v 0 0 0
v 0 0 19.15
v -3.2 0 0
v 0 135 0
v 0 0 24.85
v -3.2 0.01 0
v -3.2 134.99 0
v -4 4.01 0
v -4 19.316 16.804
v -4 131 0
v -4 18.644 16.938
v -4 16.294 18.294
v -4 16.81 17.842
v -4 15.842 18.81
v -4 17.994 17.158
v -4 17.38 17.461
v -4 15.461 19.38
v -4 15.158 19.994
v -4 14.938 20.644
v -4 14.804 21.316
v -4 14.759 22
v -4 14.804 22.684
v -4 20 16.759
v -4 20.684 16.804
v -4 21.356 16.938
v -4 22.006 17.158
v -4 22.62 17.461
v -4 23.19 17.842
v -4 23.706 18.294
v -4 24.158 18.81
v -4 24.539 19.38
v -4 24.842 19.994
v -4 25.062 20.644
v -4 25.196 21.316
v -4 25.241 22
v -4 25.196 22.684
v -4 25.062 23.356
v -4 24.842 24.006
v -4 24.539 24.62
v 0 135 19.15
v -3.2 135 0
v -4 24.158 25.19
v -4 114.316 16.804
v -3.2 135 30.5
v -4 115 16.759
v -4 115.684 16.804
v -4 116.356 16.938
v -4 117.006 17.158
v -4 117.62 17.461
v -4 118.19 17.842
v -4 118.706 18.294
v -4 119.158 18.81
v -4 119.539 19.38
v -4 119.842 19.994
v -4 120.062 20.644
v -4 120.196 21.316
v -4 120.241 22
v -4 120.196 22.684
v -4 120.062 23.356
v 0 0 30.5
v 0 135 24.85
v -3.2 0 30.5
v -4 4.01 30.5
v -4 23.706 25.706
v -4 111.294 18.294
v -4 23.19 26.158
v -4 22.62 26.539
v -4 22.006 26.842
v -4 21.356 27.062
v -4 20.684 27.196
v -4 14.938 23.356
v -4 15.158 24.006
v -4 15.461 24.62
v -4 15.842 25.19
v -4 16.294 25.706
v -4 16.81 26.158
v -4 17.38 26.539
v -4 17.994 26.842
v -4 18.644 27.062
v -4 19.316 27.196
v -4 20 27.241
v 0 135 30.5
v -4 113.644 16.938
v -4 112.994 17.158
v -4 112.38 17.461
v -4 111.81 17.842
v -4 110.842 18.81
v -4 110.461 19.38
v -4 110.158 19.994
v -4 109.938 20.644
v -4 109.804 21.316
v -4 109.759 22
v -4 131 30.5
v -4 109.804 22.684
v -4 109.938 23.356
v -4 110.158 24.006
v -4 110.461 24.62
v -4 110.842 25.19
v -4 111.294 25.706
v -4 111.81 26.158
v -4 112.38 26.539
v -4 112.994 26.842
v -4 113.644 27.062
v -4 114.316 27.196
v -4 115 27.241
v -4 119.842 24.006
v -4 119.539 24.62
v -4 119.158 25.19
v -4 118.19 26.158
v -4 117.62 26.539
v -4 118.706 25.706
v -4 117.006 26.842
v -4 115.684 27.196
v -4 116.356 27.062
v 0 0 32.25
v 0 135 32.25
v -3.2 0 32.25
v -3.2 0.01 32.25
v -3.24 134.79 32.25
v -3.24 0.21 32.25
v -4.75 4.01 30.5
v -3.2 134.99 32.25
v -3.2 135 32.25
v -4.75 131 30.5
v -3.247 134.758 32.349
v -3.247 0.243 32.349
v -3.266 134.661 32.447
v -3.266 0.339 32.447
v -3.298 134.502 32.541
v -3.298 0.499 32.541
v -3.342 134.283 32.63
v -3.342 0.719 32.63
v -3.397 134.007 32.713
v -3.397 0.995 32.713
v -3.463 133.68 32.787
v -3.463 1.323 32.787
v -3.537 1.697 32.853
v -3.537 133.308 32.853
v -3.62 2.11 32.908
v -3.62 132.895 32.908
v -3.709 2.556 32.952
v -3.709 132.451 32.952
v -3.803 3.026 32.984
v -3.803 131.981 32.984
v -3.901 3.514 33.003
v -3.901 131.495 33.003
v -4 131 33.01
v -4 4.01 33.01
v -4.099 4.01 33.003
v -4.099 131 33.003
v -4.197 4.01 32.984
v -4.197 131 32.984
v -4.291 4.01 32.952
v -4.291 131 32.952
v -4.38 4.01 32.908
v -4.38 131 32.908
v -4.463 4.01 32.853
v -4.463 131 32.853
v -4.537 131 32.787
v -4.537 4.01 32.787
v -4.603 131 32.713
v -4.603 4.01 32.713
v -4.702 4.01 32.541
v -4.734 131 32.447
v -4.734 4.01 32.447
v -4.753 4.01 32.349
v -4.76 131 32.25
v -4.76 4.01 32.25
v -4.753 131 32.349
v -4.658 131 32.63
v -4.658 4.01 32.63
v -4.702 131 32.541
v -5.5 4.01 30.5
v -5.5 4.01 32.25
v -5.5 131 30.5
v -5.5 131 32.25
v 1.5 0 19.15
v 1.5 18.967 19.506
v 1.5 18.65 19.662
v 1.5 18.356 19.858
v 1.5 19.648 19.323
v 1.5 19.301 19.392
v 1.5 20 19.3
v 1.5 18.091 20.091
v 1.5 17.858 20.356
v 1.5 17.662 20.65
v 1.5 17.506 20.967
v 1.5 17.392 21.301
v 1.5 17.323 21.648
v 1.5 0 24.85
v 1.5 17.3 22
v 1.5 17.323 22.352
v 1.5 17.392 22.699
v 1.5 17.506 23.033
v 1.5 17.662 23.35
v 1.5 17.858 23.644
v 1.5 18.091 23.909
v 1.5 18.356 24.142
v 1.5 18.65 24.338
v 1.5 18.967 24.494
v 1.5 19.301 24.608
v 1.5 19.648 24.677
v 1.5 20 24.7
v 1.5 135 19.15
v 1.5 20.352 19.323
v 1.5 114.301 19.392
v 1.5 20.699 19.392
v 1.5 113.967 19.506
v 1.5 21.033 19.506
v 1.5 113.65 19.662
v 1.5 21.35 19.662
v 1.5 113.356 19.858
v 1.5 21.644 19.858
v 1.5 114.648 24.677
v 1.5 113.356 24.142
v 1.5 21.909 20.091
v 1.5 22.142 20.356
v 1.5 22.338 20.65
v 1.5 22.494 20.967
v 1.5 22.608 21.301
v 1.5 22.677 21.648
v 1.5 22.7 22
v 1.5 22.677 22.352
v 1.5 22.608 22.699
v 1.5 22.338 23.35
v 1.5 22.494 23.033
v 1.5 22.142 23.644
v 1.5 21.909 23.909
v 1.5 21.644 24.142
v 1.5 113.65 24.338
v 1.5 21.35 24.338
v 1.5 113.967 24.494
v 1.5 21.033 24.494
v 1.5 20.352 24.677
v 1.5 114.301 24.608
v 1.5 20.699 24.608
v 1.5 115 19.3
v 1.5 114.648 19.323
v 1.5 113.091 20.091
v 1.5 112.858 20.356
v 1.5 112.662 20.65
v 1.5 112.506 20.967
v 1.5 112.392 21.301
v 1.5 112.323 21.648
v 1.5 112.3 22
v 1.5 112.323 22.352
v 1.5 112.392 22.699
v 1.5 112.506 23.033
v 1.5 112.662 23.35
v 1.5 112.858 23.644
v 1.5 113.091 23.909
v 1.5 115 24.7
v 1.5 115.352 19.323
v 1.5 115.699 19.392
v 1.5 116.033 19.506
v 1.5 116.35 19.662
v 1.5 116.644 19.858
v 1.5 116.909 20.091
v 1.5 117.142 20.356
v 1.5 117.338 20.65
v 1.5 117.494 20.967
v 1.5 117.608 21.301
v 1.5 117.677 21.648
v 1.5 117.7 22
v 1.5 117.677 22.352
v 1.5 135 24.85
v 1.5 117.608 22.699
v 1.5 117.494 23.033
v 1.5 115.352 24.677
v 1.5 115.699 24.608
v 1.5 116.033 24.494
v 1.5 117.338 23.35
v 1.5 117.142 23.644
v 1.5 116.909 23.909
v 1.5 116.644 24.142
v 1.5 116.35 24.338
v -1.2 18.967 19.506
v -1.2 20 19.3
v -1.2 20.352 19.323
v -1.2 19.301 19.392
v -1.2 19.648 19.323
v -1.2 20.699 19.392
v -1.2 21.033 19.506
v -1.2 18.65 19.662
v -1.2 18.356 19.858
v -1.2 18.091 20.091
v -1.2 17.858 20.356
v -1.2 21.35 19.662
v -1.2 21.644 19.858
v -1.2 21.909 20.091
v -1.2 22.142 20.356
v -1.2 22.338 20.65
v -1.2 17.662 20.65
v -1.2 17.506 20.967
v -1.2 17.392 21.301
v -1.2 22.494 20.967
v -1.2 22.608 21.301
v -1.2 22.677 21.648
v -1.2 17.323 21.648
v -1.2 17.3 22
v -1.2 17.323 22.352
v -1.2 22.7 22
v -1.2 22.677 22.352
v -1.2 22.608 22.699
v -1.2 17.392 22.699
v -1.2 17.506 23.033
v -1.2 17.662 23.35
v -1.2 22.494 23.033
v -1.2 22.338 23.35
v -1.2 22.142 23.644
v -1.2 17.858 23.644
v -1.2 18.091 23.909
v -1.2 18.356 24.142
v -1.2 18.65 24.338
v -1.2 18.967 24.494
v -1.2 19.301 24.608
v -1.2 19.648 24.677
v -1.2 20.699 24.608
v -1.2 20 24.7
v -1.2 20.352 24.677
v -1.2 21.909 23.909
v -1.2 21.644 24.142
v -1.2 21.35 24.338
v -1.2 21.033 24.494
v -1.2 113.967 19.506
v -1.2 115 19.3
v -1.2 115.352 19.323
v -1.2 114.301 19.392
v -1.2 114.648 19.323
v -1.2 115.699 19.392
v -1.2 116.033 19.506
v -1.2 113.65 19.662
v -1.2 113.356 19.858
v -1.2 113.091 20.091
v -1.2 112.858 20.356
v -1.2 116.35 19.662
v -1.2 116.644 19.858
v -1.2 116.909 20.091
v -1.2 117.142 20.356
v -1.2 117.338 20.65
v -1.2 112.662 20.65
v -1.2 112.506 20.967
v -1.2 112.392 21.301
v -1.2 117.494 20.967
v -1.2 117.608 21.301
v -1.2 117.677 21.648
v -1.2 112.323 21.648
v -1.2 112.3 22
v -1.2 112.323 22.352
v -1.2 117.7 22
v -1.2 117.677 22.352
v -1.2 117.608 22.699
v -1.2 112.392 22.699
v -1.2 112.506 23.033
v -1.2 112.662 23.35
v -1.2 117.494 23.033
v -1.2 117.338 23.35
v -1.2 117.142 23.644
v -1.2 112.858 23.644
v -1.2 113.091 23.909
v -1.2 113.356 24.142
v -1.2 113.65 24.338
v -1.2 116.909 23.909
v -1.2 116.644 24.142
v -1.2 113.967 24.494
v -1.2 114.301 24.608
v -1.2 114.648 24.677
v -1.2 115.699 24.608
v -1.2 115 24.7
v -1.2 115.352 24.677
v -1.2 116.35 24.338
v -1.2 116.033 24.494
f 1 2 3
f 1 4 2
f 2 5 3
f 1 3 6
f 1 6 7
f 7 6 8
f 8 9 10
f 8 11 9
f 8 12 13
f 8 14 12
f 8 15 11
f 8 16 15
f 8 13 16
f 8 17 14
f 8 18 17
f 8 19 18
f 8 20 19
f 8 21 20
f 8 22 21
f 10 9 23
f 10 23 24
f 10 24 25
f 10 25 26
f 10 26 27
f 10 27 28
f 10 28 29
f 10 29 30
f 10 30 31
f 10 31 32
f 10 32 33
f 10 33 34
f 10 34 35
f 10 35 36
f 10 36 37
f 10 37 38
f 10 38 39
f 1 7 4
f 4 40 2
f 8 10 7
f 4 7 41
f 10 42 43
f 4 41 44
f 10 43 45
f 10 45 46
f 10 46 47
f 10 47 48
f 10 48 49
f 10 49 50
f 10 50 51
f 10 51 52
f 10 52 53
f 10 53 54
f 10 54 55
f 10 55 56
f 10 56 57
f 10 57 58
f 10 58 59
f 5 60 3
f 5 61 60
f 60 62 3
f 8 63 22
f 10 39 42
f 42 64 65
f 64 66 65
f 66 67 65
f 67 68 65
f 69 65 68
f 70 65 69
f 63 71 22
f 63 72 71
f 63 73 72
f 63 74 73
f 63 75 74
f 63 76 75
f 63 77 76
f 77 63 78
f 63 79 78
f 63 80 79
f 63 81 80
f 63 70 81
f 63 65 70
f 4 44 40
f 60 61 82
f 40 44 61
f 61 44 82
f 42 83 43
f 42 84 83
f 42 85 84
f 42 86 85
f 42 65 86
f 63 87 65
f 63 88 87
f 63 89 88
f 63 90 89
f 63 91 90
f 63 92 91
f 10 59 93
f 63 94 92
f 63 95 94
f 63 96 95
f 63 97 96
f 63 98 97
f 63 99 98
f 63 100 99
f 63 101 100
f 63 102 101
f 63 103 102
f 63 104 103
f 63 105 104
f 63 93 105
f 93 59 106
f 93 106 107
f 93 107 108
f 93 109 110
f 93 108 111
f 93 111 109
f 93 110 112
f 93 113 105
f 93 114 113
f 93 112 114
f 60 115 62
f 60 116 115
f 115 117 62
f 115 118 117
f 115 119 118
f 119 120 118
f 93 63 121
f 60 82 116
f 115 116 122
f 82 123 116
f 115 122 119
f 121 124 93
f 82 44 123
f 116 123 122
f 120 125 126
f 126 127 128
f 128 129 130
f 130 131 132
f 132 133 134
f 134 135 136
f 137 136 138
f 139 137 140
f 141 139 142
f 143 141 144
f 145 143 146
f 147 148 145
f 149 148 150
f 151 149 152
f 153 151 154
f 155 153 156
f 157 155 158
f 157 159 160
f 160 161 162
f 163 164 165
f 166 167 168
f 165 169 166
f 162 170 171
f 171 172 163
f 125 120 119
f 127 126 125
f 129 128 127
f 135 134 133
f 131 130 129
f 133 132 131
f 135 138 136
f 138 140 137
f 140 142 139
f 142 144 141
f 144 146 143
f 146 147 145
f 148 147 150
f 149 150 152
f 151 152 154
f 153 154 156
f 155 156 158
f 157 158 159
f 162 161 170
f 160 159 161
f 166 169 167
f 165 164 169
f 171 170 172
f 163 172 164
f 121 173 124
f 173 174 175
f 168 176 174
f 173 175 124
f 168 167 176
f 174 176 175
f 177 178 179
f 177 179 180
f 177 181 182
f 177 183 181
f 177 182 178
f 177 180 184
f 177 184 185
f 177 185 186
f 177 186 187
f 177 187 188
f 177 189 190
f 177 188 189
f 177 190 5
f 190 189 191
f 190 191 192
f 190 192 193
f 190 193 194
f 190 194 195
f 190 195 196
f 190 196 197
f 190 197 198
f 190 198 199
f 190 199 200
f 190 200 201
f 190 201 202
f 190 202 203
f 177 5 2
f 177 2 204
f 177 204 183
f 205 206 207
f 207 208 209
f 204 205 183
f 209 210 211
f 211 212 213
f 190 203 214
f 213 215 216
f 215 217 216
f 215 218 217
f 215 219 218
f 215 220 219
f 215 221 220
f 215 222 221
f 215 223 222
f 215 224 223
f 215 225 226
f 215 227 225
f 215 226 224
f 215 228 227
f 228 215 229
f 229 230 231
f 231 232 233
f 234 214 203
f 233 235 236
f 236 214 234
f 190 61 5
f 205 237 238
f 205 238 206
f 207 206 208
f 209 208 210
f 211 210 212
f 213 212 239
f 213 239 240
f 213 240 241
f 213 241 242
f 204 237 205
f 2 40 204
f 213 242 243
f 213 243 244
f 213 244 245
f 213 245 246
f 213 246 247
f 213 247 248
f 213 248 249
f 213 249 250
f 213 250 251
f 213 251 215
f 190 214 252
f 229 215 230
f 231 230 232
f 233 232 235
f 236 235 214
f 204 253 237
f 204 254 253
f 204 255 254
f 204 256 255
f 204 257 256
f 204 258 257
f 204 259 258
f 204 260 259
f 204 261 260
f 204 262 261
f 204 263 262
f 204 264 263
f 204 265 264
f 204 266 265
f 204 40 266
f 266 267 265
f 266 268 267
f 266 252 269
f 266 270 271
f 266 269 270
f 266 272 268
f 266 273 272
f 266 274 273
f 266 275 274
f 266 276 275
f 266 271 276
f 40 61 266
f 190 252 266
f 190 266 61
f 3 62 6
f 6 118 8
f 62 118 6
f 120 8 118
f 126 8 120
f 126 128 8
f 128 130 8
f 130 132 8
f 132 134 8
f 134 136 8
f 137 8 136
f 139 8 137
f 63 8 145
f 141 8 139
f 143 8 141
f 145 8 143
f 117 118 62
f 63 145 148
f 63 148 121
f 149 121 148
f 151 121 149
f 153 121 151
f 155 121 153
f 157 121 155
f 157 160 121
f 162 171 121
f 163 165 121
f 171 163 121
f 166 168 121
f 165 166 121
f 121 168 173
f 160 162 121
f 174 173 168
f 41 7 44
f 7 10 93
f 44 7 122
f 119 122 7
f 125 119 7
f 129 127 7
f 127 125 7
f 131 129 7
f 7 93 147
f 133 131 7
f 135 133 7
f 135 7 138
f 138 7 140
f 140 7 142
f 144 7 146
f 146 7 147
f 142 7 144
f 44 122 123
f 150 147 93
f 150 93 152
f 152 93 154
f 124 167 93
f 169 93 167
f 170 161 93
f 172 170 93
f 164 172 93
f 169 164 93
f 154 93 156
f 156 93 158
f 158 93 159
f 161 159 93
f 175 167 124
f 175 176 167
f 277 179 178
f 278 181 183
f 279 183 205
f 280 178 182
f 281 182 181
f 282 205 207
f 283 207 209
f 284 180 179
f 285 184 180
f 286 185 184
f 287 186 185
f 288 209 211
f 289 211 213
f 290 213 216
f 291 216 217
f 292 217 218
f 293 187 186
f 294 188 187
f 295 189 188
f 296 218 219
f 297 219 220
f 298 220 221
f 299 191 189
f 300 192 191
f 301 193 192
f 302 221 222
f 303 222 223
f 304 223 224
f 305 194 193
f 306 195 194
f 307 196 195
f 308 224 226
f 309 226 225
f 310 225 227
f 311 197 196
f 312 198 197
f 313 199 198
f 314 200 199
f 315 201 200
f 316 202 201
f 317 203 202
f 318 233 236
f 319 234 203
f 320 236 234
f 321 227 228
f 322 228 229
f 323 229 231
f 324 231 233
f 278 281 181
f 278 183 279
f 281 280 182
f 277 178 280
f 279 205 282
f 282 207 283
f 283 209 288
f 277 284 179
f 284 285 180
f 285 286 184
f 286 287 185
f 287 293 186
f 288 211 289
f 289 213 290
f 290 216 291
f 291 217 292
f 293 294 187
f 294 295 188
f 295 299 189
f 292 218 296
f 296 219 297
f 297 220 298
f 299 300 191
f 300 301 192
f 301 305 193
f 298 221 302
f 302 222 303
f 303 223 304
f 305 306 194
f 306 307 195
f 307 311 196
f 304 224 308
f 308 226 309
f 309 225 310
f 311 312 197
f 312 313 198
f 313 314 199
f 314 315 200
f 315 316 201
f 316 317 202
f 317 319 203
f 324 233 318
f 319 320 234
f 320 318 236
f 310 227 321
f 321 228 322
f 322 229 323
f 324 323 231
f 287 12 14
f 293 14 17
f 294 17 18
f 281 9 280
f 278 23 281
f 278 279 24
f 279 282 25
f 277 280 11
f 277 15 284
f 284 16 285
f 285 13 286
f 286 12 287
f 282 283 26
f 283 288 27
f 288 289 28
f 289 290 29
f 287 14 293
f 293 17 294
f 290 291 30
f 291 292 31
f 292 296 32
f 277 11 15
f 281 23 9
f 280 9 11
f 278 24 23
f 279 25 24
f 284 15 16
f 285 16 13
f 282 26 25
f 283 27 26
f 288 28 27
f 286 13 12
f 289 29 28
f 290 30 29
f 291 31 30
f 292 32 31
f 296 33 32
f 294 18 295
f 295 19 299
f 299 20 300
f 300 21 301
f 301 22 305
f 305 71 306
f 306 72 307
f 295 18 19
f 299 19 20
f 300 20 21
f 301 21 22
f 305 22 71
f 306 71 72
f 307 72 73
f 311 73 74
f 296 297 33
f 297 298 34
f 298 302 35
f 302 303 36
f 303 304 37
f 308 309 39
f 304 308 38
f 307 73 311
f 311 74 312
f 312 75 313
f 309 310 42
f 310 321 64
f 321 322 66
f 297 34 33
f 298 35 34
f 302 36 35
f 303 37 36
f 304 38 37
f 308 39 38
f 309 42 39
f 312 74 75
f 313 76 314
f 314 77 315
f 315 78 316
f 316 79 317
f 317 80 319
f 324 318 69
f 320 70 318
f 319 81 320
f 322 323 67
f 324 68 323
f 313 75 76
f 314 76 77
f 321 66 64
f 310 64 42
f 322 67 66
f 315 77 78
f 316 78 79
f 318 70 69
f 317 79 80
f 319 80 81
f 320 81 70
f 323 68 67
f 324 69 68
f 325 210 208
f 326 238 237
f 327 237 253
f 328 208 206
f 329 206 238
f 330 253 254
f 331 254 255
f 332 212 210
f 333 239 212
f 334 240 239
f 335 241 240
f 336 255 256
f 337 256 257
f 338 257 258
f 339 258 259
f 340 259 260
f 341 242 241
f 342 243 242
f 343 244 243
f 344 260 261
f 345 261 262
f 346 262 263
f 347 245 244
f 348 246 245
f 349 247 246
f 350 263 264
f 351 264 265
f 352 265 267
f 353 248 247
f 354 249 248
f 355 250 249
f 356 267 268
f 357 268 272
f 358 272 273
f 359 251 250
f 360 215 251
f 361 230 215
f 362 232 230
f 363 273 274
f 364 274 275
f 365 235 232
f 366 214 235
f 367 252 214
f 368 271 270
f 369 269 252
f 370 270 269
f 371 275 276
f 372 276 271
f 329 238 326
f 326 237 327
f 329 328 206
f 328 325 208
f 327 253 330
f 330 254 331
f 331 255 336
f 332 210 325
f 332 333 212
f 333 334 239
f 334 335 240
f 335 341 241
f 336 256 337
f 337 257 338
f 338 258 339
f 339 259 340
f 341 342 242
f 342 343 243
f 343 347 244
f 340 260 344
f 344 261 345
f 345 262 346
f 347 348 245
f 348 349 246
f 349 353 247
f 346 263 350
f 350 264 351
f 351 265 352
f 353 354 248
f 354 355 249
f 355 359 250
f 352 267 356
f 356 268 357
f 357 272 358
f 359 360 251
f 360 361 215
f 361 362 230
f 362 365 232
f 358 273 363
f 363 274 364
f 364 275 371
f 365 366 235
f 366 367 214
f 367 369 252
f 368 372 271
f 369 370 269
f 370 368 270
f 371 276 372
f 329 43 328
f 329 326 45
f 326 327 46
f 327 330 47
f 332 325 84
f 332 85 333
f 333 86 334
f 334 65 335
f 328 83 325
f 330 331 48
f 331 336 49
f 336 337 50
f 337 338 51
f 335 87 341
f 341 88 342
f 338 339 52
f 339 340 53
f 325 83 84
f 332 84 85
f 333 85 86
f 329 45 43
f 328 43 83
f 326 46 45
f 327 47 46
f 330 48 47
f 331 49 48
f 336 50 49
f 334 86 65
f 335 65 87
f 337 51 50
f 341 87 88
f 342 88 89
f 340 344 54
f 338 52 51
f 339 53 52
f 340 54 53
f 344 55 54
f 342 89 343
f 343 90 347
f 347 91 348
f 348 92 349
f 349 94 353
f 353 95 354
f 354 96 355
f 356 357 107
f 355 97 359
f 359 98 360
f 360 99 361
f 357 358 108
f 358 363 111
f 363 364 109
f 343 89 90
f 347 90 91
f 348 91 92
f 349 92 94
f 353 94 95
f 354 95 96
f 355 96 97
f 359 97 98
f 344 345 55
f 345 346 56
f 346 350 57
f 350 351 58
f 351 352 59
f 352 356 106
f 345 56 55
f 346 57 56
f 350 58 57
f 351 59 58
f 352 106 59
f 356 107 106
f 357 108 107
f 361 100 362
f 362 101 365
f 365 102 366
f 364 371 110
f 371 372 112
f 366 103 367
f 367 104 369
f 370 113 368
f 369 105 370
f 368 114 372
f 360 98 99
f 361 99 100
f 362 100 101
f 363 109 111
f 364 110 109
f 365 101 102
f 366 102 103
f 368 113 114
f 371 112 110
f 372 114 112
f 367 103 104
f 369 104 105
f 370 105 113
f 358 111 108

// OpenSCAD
// file: lib/comun.scad
// =====================================================================
// AutoSwapEnder3Pro - parametros y utilidades comunes de las piezas
// Licencia MIT. Unidades: milimetros.
//
// Sistema de coordenadas de la ESTACION (el mismo en todas las piezas que
// se montan en ella):
//   s : a lo largo de la estacion, 0 = HOME del carro, crece hacia la impresora
//   x : a lo ancho, 0 = eje central (riel lineal), +x = lado de la caja de descarga
//   z : vertical, 0 = cara superior de la base de perfiles 2020 ("b" en la guia)
// El plano de transferencia (superficie por la que se deslizan las placas)
// esta en z = PLANO. Se ajusta a la altura de la cama de la impresora con las
// patas niveladoras, NO cambiando estas piezas.
// =====================================================================

$fn = 48;

// ----------------------------------------------------- placas y cama
placa_ancho  = 235;     // placa PEI
placa_largo  = 235;
placa_esp    = 0.6;     // espesor real de tus placas (mide con calibrador; 0.5 a 0.75)
voladizo     = 11;      // cuanto sobresale la placa (o su lengüeta) por delante de la cama

// ----------------------------------------------------- estacion (alturas sobre la base)
PLANO        = 60;      // plano de transferencia sobre la cara superior de la base
RIEL_SUP     = 20;      // cara superior del riel lineal (2020 apoyado en los travesaños)
ZP           = PLANO - RIEL_SUP;  // = 40: plano de transferencia sobre el riel lineal

// zapata (debe coincidir con zapata.scad)
zapata_bajo  = 8;       // cuanto cuelga la zapata por debajo de la placa
zapata_bolsillo = 6;    // profundidad del bolsillo para el dedo (desde abajo)

// cargador (ascensor)
paso_estante = 14;      // distancia vertical entre placas en el cargador
niveles      = 6;       // placas que caben en el cargador

// ----------------------------------------------------- perfil y tornilleria
perfil      = 20;       // perfil de aluminio 2020
ranura_ancho = 6.2;     // boca de la ranura (serie 20)
holgura     = 0.3;      // holgura general de impresion

m2_paso     = 1.8;   // agujero para autorroscante M2 (servos)
m3          = 3.4;   // paso libre M3
m3_rosca    = 2.7;   // para roscar M3 directamente en plastico
m3_tuerca   = 5.7;   // M3: entre caras + holgura
m3_tuerca_h = 2.6;
m3_cabeza   = 6.2;
m4          = 4.4;
m5          = 5.4;   // paso libre M5
m5_cabeza   = 9.2;
m5_tuerca   = 8.2;   // M5: entre caras + holgura

// ruedas en V estandar (Openbuilds "Solid V Wheel" + rodamientos 625)
rueda_d      = 23.9;
rueda_ancho  = 10.2;
rueda_sep    = 39.26;   // distancia entre centros de ruedas a ambos lados de un 2020
excentrica_d = 7.2;     // alojamiento del espaciador excentrico
espaciador_h = 6;       // espaciador (excentrico o fijo) entre rueda y placa

// ----------------------------------------------------- utilidades

// Caja con aristas verticales redondeadas (r) apoyada en z=0.
module caja_r(size, r = 2) {
  r2 = min(r, size[0] / 2 - 0.01, size[1] / 2 - 0.01);
  hull() for (ix = [r2, size[0] - r2], iy = [r2, size[1] - r2])
    translate([ix, iy, 0]) cylinder(r = r2, h = size[2]);
}

// Igual pero centrada en x e y.
module caja_rc(size, r = 2) { translate([-size[0] / 2, -size[1] / 2, 0]) caja_r(size, r); }

// Prisma hexagonal para tuercas (ec = medida entre caras).
module hexagono(ec, h) { cylinder(d = ec / cos(30), h = h, $fn = 6); }

// Ranura (agujero alargado) a lo largo de x.
module ranura(largo, d, h) {
  hull() for (i = [-largo / 2, largo / 2]) translate([i, 0, 0]) cylinder(d = d, h = h);
}

// Taladro M5 con avellanado para la cabeza (para atornillar a un perfil con tuerca en T).
module taladro_m5(h, cabeza = 4) {
  translate([0, 0, -0.1]) cylinder(d = m5, h = h + 0.2);
  translate([0, 0, h - cabeza]) cylinder(d = m5_cabeza + 0.6, h = cabeza + 0.1);
}

// Taladro M3 pasante con alojamiento de tuerca hexagonal por debajo.
module taladro_m3_tuerca(h, prof_tuerca = m3_tuerca_h + 0.2) {
  translate([0, 0, -0.1]) cylinder(d = m3, h = h + 0.2);
  translate([0, 0, -0.1]) hexagono(m3_tuerca, prof_tuerca + 0.1);
}

// Perfil 2020 de referencia (solo para ensamble y comprobaciones visuales).
module perfil2020(largo) {
  difference() {
    translate([-10, -10, 0]) cube([20, 20, largo]);
    for (a = [0, 90, 180, 270]) rotate([0, 0, a])
      translate([10 - 1.8, -ranura_ancho / 2, -1]) cube([2, ranura_ancho, largo + 2]);
    translate([0, 0, -1]) cylinder(d = 4.2, h = largo + 2);
  }
}

// Microinterruptor KW11-3Z con palanca de rodillo (referencia: 20 x 6.4 x 10 mm,
// taladros M2 a 9.5 mm). Agujeros de montaje, con la cara de montaje en z=0.
module taladros_kw11(h = 10) {
  for (i = [-4.75, 4.75]) translate([i, 0, -0.1]) cylinder(d = 2.2, h = h + 0.2);
}
// main file
// =====================================================================
// TAPA DEL RIEL DERECHO (zona de descarga) - imprimir 2 tramos
// Material: PETG. 3 perimetros, 30 %. Pegar cinta de PTFE en la cara superior.
//
// Va encima del perfil 2020 derecho de la zona de descarga. Su cara superior
// es el plano de transferencia (las placas se deslizan sobre ella). La ceja
// exterior (1.5 mm) guia la placa al cargar y hace de bisagra cuando el
// volteador levanta el lado izquierdo: la placa resbala por encima y cae a la caja.
// Coordenadas locales: x = 0 en el centro del perfil, y a lo largo, z = 0 en la
// cara superior del perfil.
// =====================================================================
include <lib/comun.scad>

largo   = 135;     // dos tramos cubren la zona de descarga (s 265-535)
grueso  = 4;       // = PLANO - cara superior del perfil
dentro  = 12;      // cuanto entra hacia el centro de la estacion desde el perfil
ceja    = [2.5, 1.5];   // ancho y alto de la ceja (la placa queda a 1 mm de ella)
chaflan = [4, 0.8];     // chaflan de entrada en los extremos (largo, caida)
x_ceja  = 8.5;     // la cara interior de la ceja queda en x = 118.5 de la estacion (perfil en x = 110)

module tapa() {
  difference() {
    union() {
      translate([-10 - dentro, 0, 0]) cube([10 + dentro + x_ceja, largo, grueso]);
      // ceja redondeada
      translate([x_ceja, 0, 0]) cube([ceja[0] - ceja[1] / 2, largo, grueso + ceja[1] - ceja[1] / 2]);
      translate([x_ceja + ceja[0] - ceja[1] / 2, 0, grueso]) rotate([-90, 0, 0])
        cylinder(r = ceja[1] / 2 + 0.01, h = largo);
      translate([x_ceja, 0, grueso]) cube([ceja[0] - ceja[1] / 2, largo, ceja[1]]);
      // lengüeta que encaja en la ranura superior del perfil (alinea la tapa)
      translate([-ranura_ancho / 2 + 0.25, 0, -1.5]) cube([ranura_ancho - 0.5, largo, 1.6]);
    }
    // chaflanes de entrada en ambos extremos (la placa nunca tropieza con el canto)
    for (y = [0, largo]) translate([-10 - dentro - 1, y, grueso]) hull() {
      translate([0, -0.01, -chaflan[1]]) cube([10 + dentro + x_ceja + ceja[0] + 2, 0.02, chaflan[1] + 3]);
      translate([0, y == 0 ? chaflan[0] : -chaflan[0], 0]) cube([10 + dentro + x_ceja + ceja[0] + 2, 0.01, 3]);
    }
    // tornillos M5 avellanados a tuercas en T del perfil
    for (y = [20, largo - 20]) translate([0, y, -2]) {
      cylinder(d = m5, h = grueso + 3);
      translate([0, 0, grueso + 2 - 2.8]) cylinder(d1 = m5, d2 = 10.5, h = 2.81);
    }
  }
}

// Orientacion de impresion: de lado (la superficie de deslizamiento queda lisa)
rotate([0, -90, 0]) translate([10 + dentro, 0, 0]) tapa();
